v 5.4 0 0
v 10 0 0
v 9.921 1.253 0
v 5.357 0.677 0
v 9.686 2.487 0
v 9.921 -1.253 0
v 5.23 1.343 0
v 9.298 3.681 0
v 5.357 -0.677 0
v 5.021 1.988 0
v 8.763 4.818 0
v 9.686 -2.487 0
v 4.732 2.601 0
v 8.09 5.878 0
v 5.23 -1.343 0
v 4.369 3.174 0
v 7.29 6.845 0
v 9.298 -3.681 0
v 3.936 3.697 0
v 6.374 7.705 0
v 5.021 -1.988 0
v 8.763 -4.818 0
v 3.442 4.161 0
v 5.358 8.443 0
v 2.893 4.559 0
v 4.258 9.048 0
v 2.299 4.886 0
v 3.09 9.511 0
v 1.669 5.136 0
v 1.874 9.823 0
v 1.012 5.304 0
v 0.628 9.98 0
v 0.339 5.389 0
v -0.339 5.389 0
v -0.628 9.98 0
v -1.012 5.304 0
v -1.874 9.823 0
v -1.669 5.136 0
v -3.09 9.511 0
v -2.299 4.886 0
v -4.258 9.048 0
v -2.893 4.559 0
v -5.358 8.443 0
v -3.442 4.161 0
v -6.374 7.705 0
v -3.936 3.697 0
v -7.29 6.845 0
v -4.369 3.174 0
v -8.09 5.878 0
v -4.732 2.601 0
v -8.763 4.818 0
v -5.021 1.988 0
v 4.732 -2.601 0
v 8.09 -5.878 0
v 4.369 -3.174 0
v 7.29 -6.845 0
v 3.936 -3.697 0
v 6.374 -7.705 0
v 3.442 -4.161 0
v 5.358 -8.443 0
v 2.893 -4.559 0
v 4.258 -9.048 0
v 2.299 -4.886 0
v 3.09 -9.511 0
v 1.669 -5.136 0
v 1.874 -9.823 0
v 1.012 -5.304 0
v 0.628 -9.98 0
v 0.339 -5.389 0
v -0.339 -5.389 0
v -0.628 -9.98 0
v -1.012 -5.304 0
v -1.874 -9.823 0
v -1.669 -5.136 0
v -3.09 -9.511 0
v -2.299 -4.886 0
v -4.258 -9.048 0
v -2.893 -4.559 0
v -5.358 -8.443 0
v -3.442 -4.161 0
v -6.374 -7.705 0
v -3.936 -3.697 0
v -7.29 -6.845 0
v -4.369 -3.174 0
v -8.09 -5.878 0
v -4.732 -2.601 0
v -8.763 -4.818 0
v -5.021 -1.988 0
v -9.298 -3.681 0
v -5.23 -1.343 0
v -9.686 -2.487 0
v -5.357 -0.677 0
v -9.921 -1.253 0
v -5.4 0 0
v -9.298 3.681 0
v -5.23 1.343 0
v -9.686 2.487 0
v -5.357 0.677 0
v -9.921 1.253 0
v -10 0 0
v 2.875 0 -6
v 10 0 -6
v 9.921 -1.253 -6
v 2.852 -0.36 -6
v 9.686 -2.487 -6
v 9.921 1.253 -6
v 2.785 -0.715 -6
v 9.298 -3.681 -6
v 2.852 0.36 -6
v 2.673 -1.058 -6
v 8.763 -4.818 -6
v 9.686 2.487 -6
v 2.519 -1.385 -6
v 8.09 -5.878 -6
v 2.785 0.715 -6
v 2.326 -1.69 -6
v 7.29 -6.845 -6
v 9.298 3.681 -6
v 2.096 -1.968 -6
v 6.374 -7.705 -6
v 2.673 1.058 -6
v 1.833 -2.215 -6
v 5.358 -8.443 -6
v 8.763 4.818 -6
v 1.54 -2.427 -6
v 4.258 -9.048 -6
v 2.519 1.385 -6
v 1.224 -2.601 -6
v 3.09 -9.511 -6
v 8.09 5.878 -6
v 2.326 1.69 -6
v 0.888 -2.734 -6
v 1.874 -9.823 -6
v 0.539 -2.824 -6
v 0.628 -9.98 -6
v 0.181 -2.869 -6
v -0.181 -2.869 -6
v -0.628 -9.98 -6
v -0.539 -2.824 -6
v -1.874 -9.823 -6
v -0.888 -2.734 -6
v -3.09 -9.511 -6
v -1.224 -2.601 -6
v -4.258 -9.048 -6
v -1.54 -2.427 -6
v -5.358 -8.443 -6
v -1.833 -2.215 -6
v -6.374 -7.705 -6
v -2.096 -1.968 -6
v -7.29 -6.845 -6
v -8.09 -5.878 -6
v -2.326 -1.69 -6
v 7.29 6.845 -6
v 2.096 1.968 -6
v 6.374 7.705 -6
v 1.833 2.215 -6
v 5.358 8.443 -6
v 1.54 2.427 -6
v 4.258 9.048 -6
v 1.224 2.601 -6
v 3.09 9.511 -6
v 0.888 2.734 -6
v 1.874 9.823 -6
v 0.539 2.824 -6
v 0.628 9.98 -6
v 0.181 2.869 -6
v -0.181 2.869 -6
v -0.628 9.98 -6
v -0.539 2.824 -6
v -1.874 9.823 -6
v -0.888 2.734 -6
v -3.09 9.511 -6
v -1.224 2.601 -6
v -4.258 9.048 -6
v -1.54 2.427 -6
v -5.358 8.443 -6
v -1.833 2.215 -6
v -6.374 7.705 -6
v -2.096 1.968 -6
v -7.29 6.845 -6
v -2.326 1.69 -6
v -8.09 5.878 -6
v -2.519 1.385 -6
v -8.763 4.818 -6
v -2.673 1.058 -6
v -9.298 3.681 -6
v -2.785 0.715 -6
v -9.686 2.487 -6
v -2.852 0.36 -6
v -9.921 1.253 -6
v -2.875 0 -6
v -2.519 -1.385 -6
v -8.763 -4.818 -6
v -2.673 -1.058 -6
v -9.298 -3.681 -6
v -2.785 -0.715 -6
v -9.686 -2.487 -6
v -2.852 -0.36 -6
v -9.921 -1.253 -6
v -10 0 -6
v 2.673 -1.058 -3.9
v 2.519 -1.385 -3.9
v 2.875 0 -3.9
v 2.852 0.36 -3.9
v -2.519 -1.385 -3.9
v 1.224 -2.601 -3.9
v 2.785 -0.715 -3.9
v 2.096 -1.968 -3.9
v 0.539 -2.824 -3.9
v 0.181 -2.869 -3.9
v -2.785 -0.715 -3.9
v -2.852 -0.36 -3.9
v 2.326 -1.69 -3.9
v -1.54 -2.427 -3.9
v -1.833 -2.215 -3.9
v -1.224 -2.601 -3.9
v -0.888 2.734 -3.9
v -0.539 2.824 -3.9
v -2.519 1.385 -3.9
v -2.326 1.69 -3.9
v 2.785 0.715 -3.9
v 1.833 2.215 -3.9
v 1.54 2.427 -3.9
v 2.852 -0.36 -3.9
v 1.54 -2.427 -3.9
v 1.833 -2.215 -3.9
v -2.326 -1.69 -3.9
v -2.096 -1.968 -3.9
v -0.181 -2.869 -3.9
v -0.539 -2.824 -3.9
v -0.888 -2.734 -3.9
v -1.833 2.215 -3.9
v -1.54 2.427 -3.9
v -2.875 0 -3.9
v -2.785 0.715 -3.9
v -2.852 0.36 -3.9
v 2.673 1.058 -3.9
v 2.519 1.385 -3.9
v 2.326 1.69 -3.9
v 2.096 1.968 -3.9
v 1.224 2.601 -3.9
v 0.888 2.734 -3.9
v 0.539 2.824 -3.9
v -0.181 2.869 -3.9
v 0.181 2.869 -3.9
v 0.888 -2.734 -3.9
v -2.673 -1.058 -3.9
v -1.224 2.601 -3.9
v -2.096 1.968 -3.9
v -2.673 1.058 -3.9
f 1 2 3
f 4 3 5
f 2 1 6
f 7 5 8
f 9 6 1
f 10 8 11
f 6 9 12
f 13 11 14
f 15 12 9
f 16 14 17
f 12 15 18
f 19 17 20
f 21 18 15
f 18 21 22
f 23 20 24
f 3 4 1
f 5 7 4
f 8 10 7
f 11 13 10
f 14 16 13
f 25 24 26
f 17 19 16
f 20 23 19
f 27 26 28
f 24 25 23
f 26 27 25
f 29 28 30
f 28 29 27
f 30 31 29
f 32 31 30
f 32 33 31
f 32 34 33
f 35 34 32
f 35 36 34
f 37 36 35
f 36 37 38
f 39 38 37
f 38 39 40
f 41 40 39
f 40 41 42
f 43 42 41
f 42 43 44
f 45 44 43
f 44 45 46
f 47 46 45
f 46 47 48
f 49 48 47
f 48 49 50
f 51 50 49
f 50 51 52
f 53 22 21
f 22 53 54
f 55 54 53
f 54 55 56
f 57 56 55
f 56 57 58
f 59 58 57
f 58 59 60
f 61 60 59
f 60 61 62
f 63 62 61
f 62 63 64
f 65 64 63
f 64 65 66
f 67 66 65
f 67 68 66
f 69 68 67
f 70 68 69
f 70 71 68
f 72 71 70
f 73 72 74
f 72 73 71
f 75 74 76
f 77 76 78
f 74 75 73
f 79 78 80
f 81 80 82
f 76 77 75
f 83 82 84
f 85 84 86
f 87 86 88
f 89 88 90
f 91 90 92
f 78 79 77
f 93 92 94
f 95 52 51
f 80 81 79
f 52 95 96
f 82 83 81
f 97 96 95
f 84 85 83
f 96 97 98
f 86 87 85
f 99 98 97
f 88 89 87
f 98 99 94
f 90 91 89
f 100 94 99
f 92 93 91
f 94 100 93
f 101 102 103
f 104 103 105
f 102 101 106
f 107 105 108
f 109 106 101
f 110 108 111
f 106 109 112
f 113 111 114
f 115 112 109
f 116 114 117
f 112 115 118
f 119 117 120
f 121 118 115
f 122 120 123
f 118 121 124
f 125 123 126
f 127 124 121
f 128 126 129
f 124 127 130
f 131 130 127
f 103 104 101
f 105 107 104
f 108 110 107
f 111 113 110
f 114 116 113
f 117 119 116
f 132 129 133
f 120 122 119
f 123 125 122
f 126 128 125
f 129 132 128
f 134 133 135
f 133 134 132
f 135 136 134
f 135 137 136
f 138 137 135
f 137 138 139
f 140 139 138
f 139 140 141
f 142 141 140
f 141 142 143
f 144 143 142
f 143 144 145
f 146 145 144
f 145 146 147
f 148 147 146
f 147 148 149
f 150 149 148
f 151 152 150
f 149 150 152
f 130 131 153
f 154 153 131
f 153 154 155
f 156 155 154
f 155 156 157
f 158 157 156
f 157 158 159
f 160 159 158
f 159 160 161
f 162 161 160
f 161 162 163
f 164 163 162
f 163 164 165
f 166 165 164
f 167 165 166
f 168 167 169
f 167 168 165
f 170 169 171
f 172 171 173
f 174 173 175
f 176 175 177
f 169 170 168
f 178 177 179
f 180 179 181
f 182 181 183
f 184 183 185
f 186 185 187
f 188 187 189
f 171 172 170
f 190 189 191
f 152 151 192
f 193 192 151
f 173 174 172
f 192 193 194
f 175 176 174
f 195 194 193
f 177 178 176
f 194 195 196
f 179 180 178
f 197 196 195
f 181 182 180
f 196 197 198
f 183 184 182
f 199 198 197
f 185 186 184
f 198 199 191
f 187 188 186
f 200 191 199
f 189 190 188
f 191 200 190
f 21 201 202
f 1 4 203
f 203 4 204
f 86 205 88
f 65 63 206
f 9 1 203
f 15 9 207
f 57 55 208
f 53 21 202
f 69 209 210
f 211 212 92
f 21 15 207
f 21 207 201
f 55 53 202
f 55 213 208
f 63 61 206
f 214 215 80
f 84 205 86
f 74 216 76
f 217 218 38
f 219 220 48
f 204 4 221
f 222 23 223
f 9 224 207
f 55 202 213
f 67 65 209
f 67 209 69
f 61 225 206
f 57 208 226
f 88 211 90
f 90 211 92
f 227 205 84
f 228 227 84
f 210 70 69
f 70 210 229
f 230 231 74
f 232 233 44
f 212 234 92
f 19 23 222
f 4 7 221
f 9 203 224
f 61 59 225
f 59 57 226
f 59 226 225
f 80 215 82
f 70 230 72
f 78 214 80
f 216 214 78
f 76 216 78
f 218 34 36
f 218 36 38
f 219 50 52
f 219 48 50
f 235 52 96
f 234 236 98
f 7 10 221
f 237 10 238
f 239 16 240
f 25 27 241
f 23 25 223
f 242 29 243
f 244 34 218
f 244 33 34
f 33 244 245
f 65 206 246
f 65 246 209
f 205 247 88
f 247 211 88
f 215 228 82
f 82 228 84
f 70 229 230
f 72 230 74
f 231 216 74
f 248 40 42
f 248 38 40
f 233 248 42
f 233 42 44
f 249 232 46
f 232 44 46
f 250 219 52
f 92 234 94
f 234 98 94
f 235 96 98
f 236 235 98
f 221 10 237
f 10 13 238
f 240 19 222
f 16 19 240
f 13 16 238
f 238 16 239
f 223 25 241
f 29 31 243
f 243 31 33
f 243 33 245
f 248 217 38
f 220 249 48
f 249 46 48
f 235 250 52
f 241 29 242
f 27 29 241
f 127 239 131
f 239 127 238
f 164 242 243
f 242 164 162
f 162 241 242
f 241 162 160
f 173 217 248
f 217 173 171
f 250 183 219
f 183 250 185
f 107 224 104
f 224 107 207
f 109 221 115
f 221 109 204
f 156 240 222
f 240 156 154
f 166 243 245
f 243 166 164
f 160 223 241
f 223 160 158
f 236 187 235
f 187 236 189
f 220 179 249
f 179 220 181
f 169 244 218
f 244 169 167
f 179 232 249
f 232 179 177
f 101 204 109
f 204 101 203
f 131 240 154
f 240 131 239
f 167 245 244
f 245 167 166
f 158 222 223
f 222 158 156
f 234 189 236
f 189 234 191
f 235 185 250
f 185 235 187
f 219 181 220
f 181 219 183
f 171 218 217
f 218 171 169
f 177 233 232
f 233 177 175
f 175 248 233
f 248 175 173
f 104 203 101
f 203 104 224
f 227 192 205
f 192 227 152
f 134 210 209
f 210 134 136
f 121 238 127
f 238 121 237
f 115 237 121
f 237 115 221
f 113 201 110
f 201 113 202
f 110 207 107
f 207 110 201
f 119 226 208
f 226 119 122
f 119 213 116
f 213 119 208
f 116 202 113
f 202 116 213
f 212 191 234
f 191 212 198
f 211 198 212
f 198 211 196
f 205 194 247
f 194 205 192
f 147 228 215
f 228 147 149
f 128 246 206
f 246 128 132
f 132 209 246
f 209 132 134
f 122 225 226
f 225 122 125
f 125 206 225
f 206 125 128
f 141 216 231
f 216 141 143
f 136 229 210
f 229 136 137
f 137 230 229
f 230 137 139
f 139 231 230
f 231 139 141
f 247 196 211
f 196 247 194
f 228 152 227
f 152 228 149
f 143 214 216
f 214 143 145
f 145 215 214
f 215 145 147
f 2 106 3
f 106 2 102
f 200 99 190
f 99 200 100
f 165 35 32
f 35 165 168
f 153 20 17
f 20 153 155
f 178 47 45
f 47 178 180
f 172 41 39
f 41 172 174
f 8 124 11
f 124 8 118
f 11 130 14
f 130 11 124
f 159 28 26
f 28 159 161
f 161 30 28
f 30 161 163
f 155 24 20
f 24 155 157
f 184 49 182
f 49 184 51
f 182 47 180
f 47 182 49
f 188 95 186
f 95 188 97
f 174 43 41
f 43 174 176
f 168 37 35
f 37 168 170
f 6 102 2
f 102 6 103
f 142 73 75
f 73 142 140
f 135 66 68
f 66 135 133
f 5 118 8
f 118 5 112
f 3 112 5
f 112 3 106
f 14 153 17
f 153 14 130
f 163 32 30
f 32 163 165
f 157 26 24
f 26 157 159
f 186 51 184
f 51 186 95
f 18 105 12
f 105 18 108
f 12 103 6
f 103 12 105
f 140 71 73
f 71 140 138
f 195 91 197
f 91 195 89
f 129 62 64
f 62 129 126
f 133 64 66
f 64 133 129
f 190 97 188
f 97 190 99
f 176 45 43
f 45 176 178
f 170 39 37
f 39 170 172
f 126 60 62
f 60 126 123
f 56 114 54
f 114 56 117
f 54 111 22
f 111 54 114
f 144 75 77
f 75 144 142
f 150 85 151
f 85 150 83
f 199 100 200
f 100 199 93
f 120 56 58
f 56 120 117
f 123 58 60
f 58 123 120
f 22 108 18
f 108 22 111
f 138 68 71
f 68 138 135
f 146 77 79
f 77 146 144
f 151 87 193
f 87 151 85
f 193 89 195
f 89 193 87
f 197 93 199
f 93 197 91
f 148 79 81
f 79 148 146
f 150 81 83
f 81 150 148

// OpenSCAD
$fn = 50;


difference() {
	union() {
		translate(v = [0, 0, -6.0000000000]) {
			cylinder(h = 6, r = 10.0000000000);
		}
	}
	union() {
		translate(v = [0, 0, 0]) {
			rotate(a = [0, 0, 0]) {
				difference() {
					union() {
						#translate(v = [0, 0, -6.0000000000]) {
							cylinder(h = 6, r = 2.6000000000);
						}
						#translate(v = [0, 0, -3.9000000000]) {
							cylinder(h = 3.9000000000, r1 = 2.8750000000, r2 = 5.4000000000);
						}
						#translate(v = [0, 0, -6.0000000000]) {
							cylinder(h = 6, r = 2.8750000000);
						}
						#translate(v = [0, 0, -6.0000000000]) {
							cylinder(h = 6, r = 2.6000000000);
						}
					}
					union();
				}
			}
		}
	}
}
